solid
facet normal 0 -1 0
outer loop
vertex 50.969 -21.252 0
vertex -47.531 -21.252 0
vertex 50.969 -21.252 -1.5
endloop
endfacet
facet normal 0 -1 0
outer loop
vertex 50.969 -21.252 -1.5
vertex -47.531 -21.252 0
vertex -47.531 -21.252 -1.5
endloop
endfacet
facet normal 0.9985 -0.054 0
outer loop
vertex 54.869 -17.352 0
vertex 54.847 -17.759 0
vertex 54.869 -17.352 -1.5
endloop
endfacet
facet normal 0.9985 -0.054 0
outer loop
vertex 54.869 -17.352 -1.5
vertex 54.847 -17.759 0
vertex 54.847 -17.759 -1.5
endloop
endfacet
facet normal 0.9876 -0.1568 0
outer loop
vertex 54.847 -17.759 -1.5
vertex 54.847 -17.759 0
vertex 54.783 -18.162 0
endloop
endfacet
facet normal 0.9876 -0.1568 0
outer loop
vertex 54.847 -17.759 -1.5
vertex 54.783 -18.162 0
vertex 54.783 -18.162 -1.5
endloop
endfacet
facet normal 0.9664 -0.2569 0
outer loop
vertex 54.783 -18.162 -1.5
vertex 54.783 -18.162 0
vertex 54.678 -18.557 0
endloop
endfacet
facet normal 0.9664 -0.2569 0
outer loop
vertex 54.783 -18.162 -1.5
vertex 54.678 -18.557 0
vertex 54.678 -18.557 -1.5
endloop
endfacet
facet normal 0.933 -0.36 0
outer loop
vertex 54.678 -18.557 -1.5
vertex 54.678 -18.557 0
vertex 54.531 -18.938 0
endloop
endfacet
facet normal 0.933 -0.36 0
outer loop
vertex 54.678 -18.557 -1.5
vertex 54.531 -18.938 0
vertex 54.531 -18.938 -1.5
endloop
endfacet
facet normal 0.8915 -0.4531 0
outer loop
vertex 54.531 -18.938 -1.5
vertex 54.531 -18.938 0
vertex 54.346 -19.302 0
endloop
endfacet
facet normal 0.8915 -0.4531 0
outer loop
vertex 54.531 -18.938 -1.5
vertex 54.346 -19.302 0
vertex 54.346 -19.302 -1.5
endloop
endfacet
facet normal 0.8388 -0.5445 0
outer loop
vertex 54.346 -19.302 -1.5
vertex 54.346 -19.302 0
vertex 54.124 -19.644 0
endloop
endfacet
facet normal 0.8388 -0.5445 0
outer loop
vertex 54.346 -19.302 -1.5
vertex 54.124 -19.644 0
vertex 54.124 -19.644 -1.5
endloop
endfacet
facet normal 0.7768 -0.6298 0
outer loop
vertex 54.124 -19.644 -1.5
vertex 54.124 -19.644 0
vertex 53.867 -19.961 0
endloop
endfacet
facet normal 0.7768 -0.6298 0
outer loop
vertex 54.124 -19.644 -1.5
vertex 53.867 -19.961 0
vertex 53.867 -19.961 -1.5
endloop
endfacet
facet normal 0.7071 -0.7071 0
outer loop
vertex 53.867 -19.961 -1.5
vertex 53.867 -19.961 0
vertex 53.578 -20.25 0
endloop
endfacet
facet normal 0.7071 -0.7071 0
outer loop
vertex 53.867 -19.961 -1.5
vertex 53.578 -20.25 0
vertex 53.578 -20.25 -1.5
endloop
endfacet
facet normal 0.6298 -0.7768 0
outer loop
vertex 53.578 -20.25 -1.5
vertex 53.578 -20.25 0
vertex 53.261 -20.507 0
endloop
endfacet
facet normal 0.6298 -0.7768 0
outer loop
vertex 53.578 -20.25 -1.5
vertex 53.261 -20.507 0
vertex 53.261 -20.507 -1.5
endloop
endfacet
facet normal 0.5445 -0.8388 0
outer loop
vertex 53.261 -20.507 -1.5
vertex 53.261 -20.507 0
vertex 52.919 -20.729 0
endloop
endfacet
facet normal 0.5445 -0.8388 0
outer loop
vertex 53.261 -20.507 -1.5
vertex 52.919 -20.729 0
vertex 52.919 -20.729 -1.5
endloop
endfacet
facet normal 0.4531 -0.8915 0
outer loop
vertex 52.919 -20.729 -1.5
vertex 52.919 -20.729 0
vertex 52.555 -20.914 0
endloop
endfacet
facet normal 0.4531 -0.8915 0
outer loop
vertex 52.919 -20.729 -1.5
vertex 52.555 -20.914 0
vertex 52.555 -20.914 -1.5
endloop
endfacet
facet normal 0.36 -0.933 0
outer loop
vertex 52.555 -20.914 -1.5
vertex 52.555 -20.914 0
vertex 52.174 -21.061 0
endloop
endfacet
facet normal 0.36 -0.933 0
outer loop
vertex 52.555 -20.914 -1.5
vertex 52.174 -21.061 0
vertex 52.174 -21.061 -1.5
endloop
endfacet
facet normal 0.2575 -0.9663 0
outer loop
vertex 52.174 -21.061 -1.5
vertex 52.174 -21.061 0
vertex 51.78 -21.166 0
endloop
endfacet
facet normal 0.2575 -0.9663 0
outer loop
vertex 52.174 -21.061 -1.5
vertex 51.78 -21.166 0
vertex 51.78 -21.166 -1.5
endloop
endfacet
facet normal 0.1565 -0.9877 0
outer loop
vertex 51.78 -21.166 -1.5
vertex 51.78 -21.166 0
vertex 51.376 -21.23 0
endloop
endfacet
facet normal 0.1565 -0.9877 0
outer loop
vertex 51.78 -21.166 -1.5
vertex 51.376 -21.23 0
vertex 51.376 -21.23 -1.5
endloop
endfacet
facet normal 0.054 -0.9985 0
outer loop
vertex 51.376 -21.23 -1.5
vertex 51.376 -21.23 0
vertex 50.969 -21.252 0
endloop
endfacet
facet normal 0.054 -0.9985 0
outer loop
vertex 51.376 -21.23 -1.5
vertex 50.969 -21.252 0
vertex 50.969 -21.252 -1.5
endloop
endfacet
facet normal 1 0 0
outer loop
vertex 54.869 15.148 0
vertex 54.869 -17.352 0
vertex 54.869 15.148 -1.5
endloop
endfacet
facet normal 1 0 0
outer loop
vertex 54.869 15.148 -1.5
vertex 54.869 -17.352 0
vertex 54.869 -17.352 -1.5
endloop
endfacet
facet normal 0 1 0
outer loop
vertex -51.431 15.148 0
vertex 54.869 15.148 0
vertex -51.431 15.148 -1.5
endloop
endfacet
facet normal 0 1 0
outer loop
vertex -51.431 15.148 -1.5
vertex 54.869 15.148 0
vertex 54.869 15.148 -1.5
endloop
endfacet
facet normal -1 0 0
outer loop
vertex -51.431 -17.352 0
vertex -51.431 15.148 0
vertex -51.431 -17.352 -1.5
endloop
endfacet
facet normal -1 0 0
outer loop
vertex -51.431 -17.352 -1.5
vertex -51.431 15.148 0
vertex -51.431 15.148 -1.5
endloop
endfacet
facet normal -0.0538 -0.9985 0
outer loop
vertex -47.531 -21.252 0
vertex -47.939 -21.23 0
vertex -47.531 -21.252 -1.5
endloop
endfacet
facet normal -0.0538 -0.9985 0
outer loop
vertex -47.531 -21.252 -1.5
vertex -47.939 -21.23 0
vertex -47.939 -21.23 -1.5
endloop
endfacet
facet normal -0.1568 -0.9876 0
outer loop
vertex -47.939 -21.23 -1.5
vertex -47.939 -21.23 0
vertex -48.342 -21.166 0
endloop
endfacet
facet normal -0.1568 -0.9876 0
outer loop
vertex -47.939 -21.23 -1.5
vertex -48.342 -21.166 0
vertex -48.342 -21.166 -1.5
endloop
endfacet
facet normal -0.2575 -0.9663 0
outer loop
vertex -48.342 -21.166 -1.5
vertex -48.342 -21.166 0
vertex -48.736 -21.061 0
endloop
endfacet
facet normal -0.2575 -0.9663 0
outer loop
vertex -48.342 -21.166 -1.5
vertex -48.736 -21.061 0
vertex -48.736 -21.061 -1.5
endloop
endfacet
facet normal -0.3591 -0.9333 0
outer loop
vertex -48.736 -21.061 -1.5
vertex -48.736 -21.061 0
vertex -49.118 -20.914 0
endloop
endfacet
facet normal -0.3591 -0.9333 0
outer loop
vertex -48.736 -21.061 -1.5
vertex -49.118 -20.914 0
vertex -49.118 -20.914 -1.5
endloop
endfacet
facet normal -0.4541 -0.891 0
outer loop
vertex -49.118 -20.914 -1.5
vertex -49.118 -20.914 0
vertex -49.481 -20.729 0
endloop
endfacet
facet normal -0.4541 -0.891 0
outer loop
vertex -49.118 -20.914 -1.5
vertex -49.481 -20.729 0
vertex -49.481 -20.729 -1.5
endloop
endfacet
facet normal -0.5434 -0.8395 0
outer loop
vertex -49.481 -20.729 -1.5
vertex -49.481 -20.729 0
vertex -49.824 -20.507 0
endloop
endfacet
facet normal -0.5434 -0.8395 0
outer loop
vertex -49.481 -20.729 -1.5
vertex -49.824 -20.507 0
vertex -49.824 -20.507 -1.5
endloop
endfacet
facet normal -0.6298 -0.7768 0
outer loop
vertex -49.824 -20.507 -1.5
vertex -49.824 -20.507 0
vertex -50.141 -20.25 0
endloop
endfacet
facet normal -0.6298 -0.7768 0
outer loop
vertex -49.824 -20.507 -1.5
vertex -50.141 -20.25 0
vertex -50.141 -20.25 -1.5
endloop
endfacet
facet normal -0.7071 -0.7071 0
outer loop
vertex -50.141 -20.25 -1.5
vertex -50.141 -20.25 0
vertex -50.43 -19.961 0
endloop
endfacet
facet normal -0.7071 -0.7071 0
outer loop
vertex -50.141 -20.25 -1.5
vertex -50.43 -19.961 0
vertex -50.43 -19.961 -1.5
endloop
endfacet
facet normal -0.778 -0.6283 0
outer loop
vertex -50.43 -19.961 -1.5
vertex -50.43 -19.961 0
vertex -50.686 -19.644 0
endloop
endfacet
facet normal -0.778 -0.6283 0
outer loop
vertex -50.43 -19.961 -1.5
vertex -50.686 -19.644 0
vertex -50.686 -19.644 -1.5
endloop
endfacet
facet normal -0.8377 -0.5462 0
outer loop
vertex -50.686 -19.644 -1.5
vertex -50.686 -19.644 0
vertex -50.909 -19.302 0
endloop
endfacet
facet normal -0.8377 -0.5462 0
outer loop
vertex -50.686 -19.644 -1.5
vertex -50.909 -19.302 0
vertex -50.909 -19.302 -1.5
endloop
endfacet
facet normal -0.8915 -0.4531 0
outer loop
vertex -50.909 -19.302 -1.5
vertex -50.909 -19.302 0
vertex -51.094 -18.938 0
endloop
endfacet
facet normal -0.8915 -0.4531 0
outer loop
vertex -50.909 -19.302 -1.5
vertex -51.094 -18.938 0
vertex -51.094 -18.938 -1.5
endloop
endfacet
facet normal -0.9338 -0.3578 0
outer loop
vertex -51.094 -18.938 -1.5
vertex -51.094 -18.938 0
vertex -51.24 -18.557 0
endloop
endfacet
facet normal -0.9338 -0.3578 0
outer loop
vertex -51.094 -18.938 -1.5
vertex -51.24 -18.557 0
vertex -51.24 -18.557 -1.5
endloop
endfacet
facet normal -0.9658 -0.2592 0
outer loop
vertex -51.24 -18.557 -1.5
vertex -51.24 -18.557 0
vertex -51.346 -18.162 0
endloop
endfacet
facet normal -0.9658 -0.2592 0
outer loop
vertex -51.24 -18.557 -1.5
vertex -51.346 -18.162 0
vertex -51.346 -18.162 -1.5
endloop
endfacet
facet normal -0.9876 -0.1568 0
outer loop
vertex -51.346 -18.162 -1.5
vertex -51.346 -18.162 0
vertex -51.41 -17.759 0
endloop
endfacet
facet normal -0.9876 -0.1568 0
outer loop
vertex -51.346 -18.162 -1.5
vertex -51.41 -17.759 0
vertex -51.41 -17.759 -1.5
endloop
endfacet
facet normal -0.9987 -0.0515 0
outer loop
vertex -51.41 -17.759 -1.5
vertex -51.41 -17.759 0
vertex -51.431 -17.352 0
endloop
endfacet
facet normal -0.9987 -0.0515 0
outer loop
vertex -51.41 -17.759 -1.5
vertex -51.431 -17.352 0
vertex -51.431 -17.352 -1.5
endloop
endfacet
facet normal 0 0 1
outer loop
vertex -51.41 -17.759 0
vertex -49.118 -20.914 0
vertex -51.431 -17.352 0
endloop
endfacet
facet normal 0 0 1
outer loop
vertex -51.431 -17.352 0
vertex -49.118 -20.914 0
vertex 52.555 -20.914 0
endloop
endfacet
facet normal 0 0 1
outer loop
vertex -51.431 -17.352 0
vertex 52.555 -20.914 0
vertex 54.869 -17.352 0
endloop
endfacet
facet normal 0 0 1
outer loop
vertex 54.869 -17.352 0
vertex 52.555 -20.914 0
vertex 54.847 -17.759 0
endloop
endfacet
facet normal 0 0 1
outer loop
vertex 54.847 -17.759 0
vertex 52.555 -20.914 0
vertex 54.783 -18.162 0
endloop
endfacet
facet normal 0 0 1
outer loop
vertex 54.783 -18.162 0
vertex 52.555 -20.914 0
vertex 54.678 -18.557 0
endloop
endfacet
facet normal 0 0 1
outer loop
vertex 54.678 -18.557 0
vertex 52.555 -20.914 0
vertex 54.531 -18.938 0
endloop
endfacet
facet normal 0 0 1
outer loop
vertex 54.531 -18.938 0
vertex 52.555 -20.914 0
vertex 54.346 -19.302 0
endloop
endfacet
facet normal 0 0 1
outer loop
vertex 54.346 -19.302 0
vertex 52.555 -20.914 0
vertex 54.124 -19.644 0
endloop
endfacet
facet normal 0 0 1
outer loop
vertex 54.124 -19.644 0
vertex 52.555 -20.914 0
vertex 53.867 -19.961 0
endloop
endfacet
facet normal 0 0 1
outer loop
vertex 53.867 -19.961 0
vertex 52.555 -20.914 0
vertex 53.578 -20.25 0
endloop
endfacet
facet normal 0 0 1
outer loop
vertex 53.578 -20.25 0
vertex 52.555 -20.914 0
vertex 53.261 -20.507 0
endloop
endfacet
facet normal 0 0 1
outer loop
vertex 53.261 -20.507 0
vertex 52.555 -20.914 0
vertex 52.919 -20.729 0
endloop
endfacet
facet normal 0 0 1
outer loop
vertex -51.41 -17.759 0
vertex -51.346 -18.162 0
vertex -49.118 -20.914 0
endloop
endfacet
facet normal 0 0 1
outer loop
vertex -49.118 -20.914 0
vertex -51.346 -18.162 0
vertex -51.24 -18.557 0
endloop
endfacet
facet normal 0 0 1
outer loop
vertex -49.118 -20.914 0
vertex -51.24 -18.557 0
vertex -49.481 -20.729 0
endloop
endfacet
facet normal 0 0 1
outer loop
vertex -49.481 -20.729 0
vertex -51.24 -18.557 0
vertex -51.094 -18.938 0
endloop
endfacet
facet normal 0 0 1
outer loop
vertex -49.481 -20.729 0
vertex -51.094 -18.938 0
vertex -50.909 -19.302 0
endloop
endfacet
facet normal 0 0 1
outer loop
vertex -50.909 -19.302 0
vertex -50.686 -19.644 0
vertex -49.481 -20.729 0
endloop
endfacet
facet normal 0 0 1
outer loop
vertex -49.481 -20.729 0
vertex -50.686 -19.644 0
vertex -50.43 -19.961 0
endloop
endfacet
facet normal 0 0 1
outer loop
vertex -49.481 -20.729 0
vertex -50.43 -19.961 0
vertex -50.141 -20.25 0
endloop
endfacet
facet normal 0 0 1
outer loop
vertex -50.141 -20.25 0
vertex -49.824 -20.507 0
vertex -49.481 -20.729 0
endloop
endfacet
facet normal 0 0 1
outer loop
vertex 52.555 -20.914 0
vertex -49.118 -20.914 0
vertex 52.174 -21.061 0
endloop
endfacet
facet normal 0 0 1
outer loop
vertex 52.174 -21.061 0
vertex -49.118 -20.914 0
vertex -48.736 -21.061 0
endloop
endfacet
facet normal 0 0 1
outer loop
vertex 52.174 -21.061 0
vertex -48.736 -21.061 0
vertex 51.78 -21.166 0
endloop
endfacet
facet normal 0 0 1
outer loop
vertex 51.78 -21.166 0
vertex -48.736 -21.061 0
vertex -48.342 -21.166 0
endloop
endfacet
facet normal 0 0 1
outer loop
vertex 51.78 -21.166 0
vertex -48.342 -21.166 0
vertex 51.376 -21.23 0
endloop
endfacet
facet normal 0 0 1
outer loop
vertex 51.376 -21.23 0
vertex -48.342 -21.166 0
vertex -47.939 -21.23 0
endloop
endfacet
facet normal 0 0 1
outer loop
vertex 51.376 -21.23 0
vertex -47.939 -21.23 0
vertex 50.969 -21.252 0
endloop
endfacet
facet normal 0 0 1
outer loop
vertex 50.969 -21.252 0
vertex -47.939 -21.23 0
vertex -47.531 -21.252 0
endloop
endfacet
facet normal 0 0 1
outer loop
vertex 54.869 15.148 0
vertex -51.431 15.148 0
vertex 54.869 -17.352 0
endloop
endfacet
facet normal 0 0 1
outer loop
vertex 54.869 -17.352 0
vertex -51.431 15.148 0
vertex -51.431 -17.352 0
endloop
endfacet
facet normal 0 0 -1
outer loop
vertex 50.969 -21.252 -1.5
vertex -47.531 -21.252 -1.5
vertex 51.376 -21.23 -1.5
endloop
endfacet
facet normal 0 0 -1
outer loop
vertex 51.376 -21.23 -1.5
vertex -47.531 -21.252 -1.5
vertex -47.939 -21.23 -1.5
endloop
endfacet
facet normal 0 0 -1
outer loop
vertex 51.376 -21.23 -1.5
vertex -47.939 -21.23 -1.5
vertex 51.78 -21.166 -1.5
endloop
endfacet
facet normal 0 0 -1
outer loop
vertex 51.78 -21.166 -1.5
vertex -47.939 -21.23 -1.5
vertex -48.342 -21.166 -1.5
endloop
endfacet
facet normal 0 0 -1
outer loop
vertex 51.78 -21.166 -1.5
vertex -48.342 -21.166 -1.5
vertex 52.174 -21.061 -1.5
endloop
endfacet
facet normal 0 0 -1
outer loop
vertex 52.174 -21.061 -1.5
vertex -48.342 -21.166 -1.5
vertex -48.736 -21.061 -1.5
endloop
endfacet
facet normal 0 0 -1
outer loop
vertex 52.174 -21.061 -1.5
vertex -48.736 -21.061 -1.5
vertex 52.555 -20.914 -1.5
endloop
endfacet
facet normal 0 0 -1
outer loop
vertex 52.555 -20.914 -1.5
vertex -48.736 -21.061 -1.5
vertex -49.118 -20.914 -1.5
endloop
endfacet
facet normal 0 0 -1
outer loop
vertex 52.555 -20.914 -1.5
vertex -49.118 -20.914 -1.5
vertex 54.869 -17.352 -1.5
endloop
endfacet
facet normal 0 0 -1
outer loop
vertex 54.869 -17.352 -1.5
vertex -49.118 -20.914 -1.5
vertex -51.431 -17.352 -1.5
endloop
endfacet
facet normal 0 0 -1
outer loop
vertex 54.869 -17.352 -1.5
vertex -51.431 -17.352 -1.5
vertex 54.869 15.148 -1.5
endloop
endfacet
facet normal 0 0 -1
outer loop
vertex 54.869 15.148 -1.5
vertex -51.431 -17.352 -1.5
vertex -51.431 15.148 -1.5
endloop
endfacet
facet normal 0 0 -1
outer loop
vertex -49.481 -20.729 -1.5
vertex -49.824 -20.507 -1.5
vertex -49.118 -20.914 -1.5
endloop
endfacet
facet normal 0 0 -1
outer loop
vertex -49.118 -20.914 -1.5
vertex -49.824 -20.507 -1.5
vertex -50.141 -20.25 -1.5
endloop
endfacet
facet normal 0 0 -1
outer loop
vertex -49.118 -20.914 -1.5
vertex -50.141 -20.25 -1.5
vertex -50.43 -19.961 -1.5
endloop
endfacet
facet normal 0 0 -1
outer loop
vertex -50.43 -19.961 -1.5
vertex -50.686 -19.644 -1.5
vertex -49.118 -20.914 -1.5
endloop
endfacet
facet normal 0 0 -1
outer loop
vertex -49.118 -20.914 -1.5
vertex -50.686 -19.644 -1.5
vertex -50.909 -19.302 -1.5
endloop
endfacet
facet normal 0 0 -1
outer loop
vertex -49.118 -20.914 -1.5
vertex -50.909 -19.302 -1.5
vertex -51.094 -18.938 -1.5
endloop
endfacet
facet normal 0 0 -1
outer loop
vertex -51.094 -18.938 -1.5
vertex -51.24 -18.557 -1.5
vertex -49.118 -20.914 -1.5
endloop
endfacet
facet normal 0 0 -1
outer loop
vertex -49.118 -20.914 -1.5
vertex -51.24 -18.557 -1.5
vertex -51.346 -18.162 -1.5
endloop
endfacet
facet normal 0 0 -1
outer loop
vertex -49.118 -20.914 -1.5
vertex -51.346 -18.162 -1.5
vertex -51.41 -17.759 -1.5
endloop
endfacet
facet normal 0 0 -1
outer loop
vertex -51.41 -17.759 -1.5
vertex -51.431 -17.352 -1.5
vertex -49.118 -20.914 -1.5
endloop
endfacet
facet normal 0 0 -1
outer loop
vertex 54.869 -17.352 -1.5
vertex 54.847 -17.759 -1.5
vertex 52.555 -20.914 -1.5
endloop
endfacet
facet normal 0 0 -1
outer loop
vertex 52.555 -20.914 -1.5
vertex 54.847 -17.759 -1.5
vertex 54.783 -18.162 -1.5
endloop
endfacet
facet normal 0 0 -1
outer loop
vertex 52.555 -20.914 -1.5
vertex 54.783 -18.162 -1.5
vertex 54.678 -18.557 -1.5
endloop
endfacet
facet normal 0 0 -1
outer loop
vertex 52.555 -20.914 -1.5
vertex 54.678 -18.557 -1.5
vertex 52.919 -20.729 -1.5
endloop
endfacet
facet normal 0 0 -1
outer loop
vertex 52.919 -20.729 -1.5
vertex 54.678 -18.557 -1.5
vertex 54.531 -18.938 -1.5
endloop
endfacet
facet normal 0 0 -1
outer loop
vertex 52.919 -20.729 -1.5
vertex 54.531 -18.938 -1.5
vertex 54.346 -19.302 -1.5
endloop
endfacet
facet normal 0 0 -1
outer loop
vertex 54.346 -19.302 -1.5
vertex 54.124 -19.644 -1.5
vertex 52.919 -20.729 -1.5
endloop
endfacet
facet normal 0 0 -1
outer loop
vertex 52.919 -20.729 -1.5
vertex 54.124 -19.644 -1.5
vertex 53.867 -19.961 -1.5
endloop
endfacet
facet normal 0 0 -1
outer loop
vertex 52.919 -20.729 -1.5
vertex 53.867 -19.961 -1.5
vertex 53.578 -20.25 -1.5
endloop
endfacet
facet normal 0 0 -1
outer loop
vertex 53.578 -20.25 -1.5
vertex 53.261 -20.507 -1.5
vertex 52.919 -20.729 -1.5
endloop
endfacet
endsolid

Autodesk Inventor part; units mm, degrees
ref_plane "YZ Plane" through (0, 0, 0) normal (1, 0, 0) x (0, 1, 0)
ref_plane "XZ Plane" through (0, 0, 0) normal (0, 1, 0) x (-1, 0, 0)
ref_plane "XY Plane" through (0, 0, 0) normal (0, 0, 1) x (1, 0, 0)
ref_plane "Work Plane1" through (0, 0, 0) normal (0, 0, 1) x (1, 0, 0)
sketch "Sketch1" plane through (0, 0, 0) normal (0, 0, 1) x (1, 0, 0)
  line L0 (54.9687, 15.1484) -> (54.9687, -17.3516) projected
  arc A0 (50.9687, -21.3516) -> (54.9687, -17.3516) centre (50.9687, -17.3516) ccw projected
  line L1 (50.9687, -21.3516) -> (-21.0313, -21.3516) projected
  line L2 (54.9687, -22.8516) -> (-21.0313, -22.8516) projected
  arc A1 (54.9687, -22.8516) -> (55.9687, -21.8516) centre (54.9687, -21.8516) ccw projected
  line L3 (55.9687, 15.1484) -> (55.9687, -21.8516) projected
  line L4 (54.9687, 15.1484) -> (55.9687, 15.1484) projected
  line L5 (-51.5313, 15.1484) -> (54.9687, 15.1484)
  line L6 (-21.0313, -21.3516) -> (-21.0313, -22.8516) projected
  line L7 (-36.0313, -22.8516) -> (-36.0313, -21.3516) projected
  line L8 (-36.0313, -21.3516) -> (-47.5313, -21.3516) projected
  arc A2 (-51.5313, -17.3516) -> (-47.5313, -21.3516) centre (-47.5313, -17.3516) ccw projected
  line L9 (-51.5313, -17.3516) -> (-51.5313, 15.1484) projected
  line L10 (-54.0313, 15.1484) -> (-51.5313, 15.1484) projected
  line L11 (-54.0313, -21.8516) -> (-54.0313, 15.1484) projected
  arc A3 (-54.0313, -21.8516) -> (-53.0313, -22.8516) centre (-53.0313, -21.8516) ccw projected
  line L12 (-36.0313, -22.8516) -> (-53.0313, -22.8516) projected
  line L13 (-36.0313, -21.3516) -> (-21.0313, -21.3516)
  point P0 (0, 0)
extrude "Extrusion1" add sketch "Sketch1" against normal blind 1.5 contours L0 A0 L1 L13 L8 A2 L9 L5
thicken "Thicken1" operation add thickness 0.1 both sides no extend neighbours yes toward (-1, 0, 0) faces at (54.9687, -6.5183, -0.5) (53.222, -20.6566, -1) (2.9687, -21.3516, -0.5) (-50.4635, -20.0723, -1) (-51.5313, 4.3151, -0.5)
properties part number "NEW_COVER_220DET_SMALL_COVER"
